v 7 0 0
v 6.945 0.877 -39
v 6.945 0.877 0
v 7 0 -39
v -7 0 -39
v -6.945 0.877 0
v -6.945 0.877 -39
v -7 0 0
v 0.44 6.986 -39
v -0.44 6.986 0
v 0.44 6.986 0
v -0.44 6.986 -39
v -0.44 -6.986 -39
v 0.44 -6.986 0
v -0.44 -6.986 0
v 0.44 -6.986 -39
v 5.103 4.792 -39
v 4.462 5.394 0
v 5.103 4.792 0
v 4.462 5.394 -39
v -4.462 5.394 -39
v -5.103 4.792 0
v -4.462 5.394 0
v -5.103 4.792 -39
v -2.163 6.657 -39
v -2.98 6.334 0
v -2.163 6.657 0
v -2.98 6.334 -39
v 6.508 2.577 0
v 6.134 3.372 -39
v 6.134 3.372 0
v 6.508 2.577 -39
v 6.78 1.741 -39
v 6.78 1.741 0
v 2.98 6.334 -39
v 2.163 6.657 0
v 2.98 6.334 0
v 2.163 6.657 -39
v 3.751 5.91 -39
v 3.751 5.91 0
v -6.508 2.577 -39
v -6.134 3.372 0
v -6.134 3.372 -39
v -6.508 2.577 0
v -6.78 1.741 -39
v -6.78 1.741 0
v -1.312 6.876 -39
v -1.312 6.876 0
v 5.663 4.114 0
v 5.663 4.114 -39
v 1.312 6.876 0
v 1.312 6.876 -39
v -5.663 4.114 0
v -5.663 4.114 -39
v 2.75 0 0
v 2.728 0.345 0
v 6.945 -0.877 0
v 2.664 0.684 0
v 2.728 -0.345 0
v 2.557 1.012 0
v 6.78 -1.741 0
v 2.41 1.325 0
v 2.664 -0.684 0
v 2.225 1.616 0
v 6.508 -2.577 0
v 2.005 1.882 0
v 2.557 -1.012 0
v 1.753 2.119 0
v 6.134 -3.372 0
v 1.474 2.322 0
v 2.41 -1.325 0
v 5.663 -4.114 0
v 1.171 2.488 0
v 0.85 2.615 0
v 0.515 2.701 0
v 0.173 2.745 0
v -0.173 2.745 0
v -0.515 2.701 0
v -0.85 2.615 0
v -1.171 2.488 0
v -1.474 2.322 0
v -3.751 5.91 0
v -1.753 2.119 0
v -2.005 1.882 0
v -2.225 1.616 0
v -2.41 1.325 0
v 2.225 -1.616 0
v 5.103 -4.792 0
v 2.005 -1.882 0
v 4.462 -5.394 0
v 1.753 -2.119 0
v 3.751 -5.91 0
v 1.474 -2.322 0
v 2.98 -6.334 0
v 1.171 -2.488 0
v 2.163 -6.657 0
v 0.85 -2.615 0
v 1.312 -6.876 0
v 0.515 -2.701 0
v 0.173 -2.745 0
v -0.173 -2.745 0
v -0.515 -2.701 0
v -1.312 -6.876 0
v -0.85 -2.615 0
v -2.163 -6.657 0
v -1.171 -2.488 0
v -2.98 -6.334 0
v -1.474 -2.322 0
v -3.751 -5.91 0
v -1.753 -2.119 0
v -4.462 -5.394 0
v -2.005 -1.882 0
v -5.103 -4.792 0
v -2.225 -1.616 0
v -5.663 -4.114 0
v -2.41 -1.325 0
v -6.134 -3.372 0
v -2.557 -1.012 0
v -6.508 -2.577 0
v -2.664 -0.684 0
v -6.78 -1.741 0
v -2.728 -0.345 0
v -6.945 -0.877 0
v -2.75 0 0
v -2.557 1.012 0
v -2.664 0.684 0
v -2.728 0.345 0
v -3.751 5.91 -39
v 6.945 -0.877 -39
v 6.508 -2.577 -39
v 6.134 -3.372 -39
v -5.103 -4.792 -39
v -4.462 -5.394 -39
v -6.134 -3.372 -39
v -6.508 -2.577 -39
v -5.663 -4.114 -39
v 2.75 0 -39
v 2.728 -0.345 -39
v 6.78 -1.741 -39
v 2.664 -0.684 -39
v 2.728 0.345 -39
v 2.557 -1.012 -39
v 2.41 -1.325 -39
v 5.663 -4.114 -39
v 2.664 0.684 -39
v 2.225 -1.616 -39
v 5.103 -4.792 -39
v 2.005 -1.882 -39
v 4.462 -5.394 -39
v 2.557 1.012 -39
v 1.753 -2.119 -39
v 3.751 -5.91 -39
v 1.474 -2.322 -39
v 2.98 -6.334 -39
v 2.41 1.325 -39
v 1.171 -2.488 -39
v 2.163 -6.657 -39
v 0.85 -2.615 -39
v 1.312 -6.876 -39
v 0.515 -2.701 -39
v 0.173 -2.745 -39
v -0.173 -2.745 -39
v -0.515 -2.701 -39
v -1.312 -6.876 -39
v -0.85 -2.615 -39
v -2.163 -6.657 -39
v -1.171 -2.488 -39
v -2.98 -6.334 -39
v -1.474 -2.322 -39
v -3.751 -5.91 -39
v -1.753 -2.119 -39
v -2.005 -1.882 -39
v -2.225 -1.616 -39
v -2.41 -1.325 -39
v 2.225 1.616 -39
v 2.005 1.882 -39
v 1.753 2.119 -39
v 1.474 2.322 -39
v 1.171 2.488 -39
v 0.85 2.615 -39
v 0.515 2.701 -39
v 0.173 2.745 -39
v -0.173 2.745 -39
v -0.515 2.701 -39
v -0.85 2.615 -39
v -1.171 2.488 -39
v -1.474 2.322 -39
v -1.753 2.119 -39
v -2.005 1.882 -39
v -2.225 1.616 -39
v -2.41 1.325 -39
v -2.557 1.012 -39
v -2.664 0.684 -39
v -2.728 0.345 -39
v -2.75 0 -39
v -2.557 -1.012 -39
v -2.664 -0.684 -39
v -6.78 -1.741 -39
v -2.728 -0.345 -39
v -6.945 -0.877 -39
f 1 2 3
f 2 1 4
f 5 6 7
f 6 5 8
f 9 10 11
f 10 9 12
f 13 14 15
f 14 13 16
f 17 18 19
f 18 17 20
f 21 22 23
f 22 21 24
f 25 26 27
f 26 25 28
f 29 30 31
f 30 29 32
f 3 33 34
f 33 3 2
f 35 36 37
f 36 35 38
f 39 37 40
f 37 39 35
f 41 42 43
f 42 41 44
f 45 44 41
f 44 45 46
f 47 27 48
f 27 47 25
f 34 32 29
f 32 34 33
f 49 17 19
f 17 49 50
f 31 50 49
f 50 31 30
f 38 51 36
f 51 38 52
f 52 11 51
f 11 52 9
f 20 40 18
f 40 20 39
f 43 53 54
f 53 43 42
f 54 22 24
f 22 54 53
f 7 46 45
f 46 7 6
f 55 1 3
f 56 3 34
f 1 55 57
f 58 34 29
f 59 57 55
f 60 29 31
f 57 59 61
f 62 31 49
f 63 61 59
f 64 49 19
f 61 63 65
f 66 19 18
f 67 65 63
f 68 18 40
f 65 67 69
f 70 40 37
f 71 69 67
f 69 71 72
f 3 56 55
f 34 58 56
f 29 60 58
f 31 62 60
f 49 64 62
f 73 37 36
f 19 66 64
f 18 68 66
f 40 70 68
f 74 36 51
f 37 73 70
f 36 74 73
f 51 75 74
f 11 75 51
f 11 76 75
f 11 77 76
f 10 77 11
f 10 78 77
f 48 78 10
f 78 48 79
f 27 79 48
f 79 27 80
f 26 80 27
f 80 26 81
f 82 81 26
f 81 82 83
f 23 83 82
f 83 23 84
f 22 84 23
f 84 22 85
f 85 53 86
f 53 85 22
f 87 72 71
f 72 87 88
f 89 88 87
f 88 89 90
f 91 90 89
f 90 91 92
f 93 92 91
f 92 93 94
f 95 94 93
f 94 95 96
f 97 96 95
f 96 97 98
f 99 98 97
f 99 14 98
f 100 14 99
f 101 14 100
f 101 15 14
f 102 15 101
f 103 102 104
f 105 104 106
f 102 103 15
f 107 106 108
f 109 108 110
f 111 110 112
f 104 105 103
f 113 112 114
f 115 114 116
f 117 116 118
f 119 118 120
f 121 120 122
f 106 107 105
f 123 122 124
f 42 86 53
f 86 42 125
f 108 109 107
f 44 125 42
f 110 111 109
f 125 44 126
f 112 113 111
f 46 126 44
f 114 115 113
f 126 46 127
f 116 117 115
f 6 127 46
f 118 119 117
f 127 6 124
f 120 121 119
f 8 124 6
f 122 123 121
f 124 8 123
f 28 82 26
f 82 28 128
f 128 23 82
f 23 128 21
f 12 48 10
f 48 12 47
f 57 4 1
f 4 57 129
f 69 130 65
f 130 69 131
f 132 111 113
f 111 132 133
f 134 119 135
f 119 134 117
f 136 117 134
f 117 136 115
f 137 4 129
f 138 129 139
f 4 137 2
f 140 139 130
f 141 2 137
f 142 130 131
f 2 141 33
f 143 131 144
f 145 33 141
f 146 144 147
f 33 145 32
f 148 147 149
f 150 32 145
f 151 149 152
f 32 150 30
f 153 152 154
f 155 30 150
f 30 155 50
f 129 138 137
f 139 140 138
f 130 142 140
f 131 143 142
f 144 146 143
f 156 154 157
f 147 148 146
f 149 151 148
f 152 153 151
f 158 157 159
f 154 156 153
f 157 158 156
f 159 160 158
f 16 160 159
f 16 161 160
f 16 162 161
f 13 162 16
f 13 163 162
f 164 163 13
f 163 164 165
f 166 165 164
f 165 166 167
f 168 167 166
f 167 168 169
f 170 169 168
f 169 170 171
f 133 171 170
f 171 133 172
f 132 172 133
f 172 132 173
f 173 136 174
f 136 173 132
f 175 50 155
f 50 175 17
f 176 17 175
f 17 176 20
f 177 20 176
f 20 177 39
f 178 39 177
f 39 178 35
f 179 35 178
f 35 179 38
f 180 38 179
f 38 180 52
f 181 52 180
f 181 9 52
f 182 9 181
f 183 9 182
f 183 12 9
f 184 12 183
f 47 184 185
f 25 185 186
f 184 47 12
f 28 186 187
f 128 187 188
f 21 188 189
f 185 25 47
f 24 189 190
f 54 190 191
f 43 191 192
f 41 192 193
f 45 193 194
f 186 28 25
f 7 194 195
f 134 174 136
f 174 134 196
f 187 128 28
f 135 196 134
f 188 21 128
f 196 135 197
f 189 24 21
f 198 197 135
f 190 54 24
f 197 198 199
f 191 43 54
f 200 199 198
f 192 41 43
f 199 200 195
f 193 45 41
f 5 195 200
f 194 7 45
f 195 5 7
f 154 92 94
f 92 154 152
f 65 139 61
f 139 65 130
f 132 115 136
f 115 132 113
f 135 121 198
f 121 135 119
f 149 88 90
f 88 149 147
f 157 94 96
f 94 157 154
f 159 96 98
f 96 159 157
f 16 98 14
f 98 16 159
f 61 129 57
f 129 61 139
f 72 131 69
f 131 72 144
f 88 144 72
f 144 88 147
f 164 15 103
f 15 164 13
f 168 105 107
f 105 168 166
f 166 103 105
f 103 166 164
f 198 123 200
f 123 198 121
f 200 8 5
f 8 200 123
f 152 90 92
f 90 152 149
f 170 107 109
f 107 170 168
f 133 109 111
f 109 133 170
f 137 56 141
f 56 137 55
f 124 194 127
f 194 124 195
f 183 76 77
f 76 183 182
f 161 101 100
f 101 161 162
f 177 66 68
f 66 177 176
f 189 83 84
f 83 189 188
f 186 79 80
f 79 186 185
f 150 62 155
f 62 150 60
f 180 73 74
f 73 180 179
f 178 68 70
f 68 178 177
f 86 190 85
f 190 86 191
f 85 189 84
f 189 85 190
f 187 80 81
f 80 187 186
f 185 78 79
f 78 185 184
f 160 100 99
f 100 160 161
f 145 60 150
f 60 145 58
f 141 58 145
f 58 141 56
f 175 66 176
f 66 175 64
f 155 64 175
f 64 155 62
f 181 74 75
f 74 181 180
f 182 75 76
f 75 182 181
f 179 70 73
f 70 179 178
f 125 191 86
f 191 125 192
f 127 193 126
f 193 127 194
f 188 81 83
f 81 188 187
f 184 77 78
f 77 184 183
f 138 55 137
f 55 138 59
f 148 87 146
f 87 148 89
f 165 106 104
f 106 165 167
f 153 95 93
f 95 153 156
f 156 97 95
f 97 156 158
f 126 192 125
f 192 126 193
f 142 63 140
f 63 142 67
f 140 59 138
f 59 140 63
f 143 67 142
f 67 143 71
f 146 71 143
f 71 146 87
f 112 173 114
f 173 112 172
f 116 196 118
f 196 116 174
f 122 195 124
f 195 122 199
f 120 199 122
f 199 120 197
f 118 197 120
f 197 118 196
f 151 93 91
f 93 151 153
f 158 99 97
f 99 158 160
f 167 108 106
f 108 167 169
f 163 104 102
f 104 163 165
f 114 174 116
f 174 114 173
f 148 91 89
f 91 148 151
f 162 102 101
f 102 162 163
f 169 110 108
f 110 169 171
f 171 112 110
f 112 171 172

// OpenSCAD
$fn = 50;


difference() {
	union() {
		translate(v = [0, 0, -39.0000000000]) {
			cylinder(h = 39, r = 7.0000000000);
		}
		cylinder(h = 0, r = 17.0000000000);
	}
	union() {
		#translate(v = [0, 0, -39]) {
			cylinder(h = 39, r = 2.7500000000);
		}
	}
}
